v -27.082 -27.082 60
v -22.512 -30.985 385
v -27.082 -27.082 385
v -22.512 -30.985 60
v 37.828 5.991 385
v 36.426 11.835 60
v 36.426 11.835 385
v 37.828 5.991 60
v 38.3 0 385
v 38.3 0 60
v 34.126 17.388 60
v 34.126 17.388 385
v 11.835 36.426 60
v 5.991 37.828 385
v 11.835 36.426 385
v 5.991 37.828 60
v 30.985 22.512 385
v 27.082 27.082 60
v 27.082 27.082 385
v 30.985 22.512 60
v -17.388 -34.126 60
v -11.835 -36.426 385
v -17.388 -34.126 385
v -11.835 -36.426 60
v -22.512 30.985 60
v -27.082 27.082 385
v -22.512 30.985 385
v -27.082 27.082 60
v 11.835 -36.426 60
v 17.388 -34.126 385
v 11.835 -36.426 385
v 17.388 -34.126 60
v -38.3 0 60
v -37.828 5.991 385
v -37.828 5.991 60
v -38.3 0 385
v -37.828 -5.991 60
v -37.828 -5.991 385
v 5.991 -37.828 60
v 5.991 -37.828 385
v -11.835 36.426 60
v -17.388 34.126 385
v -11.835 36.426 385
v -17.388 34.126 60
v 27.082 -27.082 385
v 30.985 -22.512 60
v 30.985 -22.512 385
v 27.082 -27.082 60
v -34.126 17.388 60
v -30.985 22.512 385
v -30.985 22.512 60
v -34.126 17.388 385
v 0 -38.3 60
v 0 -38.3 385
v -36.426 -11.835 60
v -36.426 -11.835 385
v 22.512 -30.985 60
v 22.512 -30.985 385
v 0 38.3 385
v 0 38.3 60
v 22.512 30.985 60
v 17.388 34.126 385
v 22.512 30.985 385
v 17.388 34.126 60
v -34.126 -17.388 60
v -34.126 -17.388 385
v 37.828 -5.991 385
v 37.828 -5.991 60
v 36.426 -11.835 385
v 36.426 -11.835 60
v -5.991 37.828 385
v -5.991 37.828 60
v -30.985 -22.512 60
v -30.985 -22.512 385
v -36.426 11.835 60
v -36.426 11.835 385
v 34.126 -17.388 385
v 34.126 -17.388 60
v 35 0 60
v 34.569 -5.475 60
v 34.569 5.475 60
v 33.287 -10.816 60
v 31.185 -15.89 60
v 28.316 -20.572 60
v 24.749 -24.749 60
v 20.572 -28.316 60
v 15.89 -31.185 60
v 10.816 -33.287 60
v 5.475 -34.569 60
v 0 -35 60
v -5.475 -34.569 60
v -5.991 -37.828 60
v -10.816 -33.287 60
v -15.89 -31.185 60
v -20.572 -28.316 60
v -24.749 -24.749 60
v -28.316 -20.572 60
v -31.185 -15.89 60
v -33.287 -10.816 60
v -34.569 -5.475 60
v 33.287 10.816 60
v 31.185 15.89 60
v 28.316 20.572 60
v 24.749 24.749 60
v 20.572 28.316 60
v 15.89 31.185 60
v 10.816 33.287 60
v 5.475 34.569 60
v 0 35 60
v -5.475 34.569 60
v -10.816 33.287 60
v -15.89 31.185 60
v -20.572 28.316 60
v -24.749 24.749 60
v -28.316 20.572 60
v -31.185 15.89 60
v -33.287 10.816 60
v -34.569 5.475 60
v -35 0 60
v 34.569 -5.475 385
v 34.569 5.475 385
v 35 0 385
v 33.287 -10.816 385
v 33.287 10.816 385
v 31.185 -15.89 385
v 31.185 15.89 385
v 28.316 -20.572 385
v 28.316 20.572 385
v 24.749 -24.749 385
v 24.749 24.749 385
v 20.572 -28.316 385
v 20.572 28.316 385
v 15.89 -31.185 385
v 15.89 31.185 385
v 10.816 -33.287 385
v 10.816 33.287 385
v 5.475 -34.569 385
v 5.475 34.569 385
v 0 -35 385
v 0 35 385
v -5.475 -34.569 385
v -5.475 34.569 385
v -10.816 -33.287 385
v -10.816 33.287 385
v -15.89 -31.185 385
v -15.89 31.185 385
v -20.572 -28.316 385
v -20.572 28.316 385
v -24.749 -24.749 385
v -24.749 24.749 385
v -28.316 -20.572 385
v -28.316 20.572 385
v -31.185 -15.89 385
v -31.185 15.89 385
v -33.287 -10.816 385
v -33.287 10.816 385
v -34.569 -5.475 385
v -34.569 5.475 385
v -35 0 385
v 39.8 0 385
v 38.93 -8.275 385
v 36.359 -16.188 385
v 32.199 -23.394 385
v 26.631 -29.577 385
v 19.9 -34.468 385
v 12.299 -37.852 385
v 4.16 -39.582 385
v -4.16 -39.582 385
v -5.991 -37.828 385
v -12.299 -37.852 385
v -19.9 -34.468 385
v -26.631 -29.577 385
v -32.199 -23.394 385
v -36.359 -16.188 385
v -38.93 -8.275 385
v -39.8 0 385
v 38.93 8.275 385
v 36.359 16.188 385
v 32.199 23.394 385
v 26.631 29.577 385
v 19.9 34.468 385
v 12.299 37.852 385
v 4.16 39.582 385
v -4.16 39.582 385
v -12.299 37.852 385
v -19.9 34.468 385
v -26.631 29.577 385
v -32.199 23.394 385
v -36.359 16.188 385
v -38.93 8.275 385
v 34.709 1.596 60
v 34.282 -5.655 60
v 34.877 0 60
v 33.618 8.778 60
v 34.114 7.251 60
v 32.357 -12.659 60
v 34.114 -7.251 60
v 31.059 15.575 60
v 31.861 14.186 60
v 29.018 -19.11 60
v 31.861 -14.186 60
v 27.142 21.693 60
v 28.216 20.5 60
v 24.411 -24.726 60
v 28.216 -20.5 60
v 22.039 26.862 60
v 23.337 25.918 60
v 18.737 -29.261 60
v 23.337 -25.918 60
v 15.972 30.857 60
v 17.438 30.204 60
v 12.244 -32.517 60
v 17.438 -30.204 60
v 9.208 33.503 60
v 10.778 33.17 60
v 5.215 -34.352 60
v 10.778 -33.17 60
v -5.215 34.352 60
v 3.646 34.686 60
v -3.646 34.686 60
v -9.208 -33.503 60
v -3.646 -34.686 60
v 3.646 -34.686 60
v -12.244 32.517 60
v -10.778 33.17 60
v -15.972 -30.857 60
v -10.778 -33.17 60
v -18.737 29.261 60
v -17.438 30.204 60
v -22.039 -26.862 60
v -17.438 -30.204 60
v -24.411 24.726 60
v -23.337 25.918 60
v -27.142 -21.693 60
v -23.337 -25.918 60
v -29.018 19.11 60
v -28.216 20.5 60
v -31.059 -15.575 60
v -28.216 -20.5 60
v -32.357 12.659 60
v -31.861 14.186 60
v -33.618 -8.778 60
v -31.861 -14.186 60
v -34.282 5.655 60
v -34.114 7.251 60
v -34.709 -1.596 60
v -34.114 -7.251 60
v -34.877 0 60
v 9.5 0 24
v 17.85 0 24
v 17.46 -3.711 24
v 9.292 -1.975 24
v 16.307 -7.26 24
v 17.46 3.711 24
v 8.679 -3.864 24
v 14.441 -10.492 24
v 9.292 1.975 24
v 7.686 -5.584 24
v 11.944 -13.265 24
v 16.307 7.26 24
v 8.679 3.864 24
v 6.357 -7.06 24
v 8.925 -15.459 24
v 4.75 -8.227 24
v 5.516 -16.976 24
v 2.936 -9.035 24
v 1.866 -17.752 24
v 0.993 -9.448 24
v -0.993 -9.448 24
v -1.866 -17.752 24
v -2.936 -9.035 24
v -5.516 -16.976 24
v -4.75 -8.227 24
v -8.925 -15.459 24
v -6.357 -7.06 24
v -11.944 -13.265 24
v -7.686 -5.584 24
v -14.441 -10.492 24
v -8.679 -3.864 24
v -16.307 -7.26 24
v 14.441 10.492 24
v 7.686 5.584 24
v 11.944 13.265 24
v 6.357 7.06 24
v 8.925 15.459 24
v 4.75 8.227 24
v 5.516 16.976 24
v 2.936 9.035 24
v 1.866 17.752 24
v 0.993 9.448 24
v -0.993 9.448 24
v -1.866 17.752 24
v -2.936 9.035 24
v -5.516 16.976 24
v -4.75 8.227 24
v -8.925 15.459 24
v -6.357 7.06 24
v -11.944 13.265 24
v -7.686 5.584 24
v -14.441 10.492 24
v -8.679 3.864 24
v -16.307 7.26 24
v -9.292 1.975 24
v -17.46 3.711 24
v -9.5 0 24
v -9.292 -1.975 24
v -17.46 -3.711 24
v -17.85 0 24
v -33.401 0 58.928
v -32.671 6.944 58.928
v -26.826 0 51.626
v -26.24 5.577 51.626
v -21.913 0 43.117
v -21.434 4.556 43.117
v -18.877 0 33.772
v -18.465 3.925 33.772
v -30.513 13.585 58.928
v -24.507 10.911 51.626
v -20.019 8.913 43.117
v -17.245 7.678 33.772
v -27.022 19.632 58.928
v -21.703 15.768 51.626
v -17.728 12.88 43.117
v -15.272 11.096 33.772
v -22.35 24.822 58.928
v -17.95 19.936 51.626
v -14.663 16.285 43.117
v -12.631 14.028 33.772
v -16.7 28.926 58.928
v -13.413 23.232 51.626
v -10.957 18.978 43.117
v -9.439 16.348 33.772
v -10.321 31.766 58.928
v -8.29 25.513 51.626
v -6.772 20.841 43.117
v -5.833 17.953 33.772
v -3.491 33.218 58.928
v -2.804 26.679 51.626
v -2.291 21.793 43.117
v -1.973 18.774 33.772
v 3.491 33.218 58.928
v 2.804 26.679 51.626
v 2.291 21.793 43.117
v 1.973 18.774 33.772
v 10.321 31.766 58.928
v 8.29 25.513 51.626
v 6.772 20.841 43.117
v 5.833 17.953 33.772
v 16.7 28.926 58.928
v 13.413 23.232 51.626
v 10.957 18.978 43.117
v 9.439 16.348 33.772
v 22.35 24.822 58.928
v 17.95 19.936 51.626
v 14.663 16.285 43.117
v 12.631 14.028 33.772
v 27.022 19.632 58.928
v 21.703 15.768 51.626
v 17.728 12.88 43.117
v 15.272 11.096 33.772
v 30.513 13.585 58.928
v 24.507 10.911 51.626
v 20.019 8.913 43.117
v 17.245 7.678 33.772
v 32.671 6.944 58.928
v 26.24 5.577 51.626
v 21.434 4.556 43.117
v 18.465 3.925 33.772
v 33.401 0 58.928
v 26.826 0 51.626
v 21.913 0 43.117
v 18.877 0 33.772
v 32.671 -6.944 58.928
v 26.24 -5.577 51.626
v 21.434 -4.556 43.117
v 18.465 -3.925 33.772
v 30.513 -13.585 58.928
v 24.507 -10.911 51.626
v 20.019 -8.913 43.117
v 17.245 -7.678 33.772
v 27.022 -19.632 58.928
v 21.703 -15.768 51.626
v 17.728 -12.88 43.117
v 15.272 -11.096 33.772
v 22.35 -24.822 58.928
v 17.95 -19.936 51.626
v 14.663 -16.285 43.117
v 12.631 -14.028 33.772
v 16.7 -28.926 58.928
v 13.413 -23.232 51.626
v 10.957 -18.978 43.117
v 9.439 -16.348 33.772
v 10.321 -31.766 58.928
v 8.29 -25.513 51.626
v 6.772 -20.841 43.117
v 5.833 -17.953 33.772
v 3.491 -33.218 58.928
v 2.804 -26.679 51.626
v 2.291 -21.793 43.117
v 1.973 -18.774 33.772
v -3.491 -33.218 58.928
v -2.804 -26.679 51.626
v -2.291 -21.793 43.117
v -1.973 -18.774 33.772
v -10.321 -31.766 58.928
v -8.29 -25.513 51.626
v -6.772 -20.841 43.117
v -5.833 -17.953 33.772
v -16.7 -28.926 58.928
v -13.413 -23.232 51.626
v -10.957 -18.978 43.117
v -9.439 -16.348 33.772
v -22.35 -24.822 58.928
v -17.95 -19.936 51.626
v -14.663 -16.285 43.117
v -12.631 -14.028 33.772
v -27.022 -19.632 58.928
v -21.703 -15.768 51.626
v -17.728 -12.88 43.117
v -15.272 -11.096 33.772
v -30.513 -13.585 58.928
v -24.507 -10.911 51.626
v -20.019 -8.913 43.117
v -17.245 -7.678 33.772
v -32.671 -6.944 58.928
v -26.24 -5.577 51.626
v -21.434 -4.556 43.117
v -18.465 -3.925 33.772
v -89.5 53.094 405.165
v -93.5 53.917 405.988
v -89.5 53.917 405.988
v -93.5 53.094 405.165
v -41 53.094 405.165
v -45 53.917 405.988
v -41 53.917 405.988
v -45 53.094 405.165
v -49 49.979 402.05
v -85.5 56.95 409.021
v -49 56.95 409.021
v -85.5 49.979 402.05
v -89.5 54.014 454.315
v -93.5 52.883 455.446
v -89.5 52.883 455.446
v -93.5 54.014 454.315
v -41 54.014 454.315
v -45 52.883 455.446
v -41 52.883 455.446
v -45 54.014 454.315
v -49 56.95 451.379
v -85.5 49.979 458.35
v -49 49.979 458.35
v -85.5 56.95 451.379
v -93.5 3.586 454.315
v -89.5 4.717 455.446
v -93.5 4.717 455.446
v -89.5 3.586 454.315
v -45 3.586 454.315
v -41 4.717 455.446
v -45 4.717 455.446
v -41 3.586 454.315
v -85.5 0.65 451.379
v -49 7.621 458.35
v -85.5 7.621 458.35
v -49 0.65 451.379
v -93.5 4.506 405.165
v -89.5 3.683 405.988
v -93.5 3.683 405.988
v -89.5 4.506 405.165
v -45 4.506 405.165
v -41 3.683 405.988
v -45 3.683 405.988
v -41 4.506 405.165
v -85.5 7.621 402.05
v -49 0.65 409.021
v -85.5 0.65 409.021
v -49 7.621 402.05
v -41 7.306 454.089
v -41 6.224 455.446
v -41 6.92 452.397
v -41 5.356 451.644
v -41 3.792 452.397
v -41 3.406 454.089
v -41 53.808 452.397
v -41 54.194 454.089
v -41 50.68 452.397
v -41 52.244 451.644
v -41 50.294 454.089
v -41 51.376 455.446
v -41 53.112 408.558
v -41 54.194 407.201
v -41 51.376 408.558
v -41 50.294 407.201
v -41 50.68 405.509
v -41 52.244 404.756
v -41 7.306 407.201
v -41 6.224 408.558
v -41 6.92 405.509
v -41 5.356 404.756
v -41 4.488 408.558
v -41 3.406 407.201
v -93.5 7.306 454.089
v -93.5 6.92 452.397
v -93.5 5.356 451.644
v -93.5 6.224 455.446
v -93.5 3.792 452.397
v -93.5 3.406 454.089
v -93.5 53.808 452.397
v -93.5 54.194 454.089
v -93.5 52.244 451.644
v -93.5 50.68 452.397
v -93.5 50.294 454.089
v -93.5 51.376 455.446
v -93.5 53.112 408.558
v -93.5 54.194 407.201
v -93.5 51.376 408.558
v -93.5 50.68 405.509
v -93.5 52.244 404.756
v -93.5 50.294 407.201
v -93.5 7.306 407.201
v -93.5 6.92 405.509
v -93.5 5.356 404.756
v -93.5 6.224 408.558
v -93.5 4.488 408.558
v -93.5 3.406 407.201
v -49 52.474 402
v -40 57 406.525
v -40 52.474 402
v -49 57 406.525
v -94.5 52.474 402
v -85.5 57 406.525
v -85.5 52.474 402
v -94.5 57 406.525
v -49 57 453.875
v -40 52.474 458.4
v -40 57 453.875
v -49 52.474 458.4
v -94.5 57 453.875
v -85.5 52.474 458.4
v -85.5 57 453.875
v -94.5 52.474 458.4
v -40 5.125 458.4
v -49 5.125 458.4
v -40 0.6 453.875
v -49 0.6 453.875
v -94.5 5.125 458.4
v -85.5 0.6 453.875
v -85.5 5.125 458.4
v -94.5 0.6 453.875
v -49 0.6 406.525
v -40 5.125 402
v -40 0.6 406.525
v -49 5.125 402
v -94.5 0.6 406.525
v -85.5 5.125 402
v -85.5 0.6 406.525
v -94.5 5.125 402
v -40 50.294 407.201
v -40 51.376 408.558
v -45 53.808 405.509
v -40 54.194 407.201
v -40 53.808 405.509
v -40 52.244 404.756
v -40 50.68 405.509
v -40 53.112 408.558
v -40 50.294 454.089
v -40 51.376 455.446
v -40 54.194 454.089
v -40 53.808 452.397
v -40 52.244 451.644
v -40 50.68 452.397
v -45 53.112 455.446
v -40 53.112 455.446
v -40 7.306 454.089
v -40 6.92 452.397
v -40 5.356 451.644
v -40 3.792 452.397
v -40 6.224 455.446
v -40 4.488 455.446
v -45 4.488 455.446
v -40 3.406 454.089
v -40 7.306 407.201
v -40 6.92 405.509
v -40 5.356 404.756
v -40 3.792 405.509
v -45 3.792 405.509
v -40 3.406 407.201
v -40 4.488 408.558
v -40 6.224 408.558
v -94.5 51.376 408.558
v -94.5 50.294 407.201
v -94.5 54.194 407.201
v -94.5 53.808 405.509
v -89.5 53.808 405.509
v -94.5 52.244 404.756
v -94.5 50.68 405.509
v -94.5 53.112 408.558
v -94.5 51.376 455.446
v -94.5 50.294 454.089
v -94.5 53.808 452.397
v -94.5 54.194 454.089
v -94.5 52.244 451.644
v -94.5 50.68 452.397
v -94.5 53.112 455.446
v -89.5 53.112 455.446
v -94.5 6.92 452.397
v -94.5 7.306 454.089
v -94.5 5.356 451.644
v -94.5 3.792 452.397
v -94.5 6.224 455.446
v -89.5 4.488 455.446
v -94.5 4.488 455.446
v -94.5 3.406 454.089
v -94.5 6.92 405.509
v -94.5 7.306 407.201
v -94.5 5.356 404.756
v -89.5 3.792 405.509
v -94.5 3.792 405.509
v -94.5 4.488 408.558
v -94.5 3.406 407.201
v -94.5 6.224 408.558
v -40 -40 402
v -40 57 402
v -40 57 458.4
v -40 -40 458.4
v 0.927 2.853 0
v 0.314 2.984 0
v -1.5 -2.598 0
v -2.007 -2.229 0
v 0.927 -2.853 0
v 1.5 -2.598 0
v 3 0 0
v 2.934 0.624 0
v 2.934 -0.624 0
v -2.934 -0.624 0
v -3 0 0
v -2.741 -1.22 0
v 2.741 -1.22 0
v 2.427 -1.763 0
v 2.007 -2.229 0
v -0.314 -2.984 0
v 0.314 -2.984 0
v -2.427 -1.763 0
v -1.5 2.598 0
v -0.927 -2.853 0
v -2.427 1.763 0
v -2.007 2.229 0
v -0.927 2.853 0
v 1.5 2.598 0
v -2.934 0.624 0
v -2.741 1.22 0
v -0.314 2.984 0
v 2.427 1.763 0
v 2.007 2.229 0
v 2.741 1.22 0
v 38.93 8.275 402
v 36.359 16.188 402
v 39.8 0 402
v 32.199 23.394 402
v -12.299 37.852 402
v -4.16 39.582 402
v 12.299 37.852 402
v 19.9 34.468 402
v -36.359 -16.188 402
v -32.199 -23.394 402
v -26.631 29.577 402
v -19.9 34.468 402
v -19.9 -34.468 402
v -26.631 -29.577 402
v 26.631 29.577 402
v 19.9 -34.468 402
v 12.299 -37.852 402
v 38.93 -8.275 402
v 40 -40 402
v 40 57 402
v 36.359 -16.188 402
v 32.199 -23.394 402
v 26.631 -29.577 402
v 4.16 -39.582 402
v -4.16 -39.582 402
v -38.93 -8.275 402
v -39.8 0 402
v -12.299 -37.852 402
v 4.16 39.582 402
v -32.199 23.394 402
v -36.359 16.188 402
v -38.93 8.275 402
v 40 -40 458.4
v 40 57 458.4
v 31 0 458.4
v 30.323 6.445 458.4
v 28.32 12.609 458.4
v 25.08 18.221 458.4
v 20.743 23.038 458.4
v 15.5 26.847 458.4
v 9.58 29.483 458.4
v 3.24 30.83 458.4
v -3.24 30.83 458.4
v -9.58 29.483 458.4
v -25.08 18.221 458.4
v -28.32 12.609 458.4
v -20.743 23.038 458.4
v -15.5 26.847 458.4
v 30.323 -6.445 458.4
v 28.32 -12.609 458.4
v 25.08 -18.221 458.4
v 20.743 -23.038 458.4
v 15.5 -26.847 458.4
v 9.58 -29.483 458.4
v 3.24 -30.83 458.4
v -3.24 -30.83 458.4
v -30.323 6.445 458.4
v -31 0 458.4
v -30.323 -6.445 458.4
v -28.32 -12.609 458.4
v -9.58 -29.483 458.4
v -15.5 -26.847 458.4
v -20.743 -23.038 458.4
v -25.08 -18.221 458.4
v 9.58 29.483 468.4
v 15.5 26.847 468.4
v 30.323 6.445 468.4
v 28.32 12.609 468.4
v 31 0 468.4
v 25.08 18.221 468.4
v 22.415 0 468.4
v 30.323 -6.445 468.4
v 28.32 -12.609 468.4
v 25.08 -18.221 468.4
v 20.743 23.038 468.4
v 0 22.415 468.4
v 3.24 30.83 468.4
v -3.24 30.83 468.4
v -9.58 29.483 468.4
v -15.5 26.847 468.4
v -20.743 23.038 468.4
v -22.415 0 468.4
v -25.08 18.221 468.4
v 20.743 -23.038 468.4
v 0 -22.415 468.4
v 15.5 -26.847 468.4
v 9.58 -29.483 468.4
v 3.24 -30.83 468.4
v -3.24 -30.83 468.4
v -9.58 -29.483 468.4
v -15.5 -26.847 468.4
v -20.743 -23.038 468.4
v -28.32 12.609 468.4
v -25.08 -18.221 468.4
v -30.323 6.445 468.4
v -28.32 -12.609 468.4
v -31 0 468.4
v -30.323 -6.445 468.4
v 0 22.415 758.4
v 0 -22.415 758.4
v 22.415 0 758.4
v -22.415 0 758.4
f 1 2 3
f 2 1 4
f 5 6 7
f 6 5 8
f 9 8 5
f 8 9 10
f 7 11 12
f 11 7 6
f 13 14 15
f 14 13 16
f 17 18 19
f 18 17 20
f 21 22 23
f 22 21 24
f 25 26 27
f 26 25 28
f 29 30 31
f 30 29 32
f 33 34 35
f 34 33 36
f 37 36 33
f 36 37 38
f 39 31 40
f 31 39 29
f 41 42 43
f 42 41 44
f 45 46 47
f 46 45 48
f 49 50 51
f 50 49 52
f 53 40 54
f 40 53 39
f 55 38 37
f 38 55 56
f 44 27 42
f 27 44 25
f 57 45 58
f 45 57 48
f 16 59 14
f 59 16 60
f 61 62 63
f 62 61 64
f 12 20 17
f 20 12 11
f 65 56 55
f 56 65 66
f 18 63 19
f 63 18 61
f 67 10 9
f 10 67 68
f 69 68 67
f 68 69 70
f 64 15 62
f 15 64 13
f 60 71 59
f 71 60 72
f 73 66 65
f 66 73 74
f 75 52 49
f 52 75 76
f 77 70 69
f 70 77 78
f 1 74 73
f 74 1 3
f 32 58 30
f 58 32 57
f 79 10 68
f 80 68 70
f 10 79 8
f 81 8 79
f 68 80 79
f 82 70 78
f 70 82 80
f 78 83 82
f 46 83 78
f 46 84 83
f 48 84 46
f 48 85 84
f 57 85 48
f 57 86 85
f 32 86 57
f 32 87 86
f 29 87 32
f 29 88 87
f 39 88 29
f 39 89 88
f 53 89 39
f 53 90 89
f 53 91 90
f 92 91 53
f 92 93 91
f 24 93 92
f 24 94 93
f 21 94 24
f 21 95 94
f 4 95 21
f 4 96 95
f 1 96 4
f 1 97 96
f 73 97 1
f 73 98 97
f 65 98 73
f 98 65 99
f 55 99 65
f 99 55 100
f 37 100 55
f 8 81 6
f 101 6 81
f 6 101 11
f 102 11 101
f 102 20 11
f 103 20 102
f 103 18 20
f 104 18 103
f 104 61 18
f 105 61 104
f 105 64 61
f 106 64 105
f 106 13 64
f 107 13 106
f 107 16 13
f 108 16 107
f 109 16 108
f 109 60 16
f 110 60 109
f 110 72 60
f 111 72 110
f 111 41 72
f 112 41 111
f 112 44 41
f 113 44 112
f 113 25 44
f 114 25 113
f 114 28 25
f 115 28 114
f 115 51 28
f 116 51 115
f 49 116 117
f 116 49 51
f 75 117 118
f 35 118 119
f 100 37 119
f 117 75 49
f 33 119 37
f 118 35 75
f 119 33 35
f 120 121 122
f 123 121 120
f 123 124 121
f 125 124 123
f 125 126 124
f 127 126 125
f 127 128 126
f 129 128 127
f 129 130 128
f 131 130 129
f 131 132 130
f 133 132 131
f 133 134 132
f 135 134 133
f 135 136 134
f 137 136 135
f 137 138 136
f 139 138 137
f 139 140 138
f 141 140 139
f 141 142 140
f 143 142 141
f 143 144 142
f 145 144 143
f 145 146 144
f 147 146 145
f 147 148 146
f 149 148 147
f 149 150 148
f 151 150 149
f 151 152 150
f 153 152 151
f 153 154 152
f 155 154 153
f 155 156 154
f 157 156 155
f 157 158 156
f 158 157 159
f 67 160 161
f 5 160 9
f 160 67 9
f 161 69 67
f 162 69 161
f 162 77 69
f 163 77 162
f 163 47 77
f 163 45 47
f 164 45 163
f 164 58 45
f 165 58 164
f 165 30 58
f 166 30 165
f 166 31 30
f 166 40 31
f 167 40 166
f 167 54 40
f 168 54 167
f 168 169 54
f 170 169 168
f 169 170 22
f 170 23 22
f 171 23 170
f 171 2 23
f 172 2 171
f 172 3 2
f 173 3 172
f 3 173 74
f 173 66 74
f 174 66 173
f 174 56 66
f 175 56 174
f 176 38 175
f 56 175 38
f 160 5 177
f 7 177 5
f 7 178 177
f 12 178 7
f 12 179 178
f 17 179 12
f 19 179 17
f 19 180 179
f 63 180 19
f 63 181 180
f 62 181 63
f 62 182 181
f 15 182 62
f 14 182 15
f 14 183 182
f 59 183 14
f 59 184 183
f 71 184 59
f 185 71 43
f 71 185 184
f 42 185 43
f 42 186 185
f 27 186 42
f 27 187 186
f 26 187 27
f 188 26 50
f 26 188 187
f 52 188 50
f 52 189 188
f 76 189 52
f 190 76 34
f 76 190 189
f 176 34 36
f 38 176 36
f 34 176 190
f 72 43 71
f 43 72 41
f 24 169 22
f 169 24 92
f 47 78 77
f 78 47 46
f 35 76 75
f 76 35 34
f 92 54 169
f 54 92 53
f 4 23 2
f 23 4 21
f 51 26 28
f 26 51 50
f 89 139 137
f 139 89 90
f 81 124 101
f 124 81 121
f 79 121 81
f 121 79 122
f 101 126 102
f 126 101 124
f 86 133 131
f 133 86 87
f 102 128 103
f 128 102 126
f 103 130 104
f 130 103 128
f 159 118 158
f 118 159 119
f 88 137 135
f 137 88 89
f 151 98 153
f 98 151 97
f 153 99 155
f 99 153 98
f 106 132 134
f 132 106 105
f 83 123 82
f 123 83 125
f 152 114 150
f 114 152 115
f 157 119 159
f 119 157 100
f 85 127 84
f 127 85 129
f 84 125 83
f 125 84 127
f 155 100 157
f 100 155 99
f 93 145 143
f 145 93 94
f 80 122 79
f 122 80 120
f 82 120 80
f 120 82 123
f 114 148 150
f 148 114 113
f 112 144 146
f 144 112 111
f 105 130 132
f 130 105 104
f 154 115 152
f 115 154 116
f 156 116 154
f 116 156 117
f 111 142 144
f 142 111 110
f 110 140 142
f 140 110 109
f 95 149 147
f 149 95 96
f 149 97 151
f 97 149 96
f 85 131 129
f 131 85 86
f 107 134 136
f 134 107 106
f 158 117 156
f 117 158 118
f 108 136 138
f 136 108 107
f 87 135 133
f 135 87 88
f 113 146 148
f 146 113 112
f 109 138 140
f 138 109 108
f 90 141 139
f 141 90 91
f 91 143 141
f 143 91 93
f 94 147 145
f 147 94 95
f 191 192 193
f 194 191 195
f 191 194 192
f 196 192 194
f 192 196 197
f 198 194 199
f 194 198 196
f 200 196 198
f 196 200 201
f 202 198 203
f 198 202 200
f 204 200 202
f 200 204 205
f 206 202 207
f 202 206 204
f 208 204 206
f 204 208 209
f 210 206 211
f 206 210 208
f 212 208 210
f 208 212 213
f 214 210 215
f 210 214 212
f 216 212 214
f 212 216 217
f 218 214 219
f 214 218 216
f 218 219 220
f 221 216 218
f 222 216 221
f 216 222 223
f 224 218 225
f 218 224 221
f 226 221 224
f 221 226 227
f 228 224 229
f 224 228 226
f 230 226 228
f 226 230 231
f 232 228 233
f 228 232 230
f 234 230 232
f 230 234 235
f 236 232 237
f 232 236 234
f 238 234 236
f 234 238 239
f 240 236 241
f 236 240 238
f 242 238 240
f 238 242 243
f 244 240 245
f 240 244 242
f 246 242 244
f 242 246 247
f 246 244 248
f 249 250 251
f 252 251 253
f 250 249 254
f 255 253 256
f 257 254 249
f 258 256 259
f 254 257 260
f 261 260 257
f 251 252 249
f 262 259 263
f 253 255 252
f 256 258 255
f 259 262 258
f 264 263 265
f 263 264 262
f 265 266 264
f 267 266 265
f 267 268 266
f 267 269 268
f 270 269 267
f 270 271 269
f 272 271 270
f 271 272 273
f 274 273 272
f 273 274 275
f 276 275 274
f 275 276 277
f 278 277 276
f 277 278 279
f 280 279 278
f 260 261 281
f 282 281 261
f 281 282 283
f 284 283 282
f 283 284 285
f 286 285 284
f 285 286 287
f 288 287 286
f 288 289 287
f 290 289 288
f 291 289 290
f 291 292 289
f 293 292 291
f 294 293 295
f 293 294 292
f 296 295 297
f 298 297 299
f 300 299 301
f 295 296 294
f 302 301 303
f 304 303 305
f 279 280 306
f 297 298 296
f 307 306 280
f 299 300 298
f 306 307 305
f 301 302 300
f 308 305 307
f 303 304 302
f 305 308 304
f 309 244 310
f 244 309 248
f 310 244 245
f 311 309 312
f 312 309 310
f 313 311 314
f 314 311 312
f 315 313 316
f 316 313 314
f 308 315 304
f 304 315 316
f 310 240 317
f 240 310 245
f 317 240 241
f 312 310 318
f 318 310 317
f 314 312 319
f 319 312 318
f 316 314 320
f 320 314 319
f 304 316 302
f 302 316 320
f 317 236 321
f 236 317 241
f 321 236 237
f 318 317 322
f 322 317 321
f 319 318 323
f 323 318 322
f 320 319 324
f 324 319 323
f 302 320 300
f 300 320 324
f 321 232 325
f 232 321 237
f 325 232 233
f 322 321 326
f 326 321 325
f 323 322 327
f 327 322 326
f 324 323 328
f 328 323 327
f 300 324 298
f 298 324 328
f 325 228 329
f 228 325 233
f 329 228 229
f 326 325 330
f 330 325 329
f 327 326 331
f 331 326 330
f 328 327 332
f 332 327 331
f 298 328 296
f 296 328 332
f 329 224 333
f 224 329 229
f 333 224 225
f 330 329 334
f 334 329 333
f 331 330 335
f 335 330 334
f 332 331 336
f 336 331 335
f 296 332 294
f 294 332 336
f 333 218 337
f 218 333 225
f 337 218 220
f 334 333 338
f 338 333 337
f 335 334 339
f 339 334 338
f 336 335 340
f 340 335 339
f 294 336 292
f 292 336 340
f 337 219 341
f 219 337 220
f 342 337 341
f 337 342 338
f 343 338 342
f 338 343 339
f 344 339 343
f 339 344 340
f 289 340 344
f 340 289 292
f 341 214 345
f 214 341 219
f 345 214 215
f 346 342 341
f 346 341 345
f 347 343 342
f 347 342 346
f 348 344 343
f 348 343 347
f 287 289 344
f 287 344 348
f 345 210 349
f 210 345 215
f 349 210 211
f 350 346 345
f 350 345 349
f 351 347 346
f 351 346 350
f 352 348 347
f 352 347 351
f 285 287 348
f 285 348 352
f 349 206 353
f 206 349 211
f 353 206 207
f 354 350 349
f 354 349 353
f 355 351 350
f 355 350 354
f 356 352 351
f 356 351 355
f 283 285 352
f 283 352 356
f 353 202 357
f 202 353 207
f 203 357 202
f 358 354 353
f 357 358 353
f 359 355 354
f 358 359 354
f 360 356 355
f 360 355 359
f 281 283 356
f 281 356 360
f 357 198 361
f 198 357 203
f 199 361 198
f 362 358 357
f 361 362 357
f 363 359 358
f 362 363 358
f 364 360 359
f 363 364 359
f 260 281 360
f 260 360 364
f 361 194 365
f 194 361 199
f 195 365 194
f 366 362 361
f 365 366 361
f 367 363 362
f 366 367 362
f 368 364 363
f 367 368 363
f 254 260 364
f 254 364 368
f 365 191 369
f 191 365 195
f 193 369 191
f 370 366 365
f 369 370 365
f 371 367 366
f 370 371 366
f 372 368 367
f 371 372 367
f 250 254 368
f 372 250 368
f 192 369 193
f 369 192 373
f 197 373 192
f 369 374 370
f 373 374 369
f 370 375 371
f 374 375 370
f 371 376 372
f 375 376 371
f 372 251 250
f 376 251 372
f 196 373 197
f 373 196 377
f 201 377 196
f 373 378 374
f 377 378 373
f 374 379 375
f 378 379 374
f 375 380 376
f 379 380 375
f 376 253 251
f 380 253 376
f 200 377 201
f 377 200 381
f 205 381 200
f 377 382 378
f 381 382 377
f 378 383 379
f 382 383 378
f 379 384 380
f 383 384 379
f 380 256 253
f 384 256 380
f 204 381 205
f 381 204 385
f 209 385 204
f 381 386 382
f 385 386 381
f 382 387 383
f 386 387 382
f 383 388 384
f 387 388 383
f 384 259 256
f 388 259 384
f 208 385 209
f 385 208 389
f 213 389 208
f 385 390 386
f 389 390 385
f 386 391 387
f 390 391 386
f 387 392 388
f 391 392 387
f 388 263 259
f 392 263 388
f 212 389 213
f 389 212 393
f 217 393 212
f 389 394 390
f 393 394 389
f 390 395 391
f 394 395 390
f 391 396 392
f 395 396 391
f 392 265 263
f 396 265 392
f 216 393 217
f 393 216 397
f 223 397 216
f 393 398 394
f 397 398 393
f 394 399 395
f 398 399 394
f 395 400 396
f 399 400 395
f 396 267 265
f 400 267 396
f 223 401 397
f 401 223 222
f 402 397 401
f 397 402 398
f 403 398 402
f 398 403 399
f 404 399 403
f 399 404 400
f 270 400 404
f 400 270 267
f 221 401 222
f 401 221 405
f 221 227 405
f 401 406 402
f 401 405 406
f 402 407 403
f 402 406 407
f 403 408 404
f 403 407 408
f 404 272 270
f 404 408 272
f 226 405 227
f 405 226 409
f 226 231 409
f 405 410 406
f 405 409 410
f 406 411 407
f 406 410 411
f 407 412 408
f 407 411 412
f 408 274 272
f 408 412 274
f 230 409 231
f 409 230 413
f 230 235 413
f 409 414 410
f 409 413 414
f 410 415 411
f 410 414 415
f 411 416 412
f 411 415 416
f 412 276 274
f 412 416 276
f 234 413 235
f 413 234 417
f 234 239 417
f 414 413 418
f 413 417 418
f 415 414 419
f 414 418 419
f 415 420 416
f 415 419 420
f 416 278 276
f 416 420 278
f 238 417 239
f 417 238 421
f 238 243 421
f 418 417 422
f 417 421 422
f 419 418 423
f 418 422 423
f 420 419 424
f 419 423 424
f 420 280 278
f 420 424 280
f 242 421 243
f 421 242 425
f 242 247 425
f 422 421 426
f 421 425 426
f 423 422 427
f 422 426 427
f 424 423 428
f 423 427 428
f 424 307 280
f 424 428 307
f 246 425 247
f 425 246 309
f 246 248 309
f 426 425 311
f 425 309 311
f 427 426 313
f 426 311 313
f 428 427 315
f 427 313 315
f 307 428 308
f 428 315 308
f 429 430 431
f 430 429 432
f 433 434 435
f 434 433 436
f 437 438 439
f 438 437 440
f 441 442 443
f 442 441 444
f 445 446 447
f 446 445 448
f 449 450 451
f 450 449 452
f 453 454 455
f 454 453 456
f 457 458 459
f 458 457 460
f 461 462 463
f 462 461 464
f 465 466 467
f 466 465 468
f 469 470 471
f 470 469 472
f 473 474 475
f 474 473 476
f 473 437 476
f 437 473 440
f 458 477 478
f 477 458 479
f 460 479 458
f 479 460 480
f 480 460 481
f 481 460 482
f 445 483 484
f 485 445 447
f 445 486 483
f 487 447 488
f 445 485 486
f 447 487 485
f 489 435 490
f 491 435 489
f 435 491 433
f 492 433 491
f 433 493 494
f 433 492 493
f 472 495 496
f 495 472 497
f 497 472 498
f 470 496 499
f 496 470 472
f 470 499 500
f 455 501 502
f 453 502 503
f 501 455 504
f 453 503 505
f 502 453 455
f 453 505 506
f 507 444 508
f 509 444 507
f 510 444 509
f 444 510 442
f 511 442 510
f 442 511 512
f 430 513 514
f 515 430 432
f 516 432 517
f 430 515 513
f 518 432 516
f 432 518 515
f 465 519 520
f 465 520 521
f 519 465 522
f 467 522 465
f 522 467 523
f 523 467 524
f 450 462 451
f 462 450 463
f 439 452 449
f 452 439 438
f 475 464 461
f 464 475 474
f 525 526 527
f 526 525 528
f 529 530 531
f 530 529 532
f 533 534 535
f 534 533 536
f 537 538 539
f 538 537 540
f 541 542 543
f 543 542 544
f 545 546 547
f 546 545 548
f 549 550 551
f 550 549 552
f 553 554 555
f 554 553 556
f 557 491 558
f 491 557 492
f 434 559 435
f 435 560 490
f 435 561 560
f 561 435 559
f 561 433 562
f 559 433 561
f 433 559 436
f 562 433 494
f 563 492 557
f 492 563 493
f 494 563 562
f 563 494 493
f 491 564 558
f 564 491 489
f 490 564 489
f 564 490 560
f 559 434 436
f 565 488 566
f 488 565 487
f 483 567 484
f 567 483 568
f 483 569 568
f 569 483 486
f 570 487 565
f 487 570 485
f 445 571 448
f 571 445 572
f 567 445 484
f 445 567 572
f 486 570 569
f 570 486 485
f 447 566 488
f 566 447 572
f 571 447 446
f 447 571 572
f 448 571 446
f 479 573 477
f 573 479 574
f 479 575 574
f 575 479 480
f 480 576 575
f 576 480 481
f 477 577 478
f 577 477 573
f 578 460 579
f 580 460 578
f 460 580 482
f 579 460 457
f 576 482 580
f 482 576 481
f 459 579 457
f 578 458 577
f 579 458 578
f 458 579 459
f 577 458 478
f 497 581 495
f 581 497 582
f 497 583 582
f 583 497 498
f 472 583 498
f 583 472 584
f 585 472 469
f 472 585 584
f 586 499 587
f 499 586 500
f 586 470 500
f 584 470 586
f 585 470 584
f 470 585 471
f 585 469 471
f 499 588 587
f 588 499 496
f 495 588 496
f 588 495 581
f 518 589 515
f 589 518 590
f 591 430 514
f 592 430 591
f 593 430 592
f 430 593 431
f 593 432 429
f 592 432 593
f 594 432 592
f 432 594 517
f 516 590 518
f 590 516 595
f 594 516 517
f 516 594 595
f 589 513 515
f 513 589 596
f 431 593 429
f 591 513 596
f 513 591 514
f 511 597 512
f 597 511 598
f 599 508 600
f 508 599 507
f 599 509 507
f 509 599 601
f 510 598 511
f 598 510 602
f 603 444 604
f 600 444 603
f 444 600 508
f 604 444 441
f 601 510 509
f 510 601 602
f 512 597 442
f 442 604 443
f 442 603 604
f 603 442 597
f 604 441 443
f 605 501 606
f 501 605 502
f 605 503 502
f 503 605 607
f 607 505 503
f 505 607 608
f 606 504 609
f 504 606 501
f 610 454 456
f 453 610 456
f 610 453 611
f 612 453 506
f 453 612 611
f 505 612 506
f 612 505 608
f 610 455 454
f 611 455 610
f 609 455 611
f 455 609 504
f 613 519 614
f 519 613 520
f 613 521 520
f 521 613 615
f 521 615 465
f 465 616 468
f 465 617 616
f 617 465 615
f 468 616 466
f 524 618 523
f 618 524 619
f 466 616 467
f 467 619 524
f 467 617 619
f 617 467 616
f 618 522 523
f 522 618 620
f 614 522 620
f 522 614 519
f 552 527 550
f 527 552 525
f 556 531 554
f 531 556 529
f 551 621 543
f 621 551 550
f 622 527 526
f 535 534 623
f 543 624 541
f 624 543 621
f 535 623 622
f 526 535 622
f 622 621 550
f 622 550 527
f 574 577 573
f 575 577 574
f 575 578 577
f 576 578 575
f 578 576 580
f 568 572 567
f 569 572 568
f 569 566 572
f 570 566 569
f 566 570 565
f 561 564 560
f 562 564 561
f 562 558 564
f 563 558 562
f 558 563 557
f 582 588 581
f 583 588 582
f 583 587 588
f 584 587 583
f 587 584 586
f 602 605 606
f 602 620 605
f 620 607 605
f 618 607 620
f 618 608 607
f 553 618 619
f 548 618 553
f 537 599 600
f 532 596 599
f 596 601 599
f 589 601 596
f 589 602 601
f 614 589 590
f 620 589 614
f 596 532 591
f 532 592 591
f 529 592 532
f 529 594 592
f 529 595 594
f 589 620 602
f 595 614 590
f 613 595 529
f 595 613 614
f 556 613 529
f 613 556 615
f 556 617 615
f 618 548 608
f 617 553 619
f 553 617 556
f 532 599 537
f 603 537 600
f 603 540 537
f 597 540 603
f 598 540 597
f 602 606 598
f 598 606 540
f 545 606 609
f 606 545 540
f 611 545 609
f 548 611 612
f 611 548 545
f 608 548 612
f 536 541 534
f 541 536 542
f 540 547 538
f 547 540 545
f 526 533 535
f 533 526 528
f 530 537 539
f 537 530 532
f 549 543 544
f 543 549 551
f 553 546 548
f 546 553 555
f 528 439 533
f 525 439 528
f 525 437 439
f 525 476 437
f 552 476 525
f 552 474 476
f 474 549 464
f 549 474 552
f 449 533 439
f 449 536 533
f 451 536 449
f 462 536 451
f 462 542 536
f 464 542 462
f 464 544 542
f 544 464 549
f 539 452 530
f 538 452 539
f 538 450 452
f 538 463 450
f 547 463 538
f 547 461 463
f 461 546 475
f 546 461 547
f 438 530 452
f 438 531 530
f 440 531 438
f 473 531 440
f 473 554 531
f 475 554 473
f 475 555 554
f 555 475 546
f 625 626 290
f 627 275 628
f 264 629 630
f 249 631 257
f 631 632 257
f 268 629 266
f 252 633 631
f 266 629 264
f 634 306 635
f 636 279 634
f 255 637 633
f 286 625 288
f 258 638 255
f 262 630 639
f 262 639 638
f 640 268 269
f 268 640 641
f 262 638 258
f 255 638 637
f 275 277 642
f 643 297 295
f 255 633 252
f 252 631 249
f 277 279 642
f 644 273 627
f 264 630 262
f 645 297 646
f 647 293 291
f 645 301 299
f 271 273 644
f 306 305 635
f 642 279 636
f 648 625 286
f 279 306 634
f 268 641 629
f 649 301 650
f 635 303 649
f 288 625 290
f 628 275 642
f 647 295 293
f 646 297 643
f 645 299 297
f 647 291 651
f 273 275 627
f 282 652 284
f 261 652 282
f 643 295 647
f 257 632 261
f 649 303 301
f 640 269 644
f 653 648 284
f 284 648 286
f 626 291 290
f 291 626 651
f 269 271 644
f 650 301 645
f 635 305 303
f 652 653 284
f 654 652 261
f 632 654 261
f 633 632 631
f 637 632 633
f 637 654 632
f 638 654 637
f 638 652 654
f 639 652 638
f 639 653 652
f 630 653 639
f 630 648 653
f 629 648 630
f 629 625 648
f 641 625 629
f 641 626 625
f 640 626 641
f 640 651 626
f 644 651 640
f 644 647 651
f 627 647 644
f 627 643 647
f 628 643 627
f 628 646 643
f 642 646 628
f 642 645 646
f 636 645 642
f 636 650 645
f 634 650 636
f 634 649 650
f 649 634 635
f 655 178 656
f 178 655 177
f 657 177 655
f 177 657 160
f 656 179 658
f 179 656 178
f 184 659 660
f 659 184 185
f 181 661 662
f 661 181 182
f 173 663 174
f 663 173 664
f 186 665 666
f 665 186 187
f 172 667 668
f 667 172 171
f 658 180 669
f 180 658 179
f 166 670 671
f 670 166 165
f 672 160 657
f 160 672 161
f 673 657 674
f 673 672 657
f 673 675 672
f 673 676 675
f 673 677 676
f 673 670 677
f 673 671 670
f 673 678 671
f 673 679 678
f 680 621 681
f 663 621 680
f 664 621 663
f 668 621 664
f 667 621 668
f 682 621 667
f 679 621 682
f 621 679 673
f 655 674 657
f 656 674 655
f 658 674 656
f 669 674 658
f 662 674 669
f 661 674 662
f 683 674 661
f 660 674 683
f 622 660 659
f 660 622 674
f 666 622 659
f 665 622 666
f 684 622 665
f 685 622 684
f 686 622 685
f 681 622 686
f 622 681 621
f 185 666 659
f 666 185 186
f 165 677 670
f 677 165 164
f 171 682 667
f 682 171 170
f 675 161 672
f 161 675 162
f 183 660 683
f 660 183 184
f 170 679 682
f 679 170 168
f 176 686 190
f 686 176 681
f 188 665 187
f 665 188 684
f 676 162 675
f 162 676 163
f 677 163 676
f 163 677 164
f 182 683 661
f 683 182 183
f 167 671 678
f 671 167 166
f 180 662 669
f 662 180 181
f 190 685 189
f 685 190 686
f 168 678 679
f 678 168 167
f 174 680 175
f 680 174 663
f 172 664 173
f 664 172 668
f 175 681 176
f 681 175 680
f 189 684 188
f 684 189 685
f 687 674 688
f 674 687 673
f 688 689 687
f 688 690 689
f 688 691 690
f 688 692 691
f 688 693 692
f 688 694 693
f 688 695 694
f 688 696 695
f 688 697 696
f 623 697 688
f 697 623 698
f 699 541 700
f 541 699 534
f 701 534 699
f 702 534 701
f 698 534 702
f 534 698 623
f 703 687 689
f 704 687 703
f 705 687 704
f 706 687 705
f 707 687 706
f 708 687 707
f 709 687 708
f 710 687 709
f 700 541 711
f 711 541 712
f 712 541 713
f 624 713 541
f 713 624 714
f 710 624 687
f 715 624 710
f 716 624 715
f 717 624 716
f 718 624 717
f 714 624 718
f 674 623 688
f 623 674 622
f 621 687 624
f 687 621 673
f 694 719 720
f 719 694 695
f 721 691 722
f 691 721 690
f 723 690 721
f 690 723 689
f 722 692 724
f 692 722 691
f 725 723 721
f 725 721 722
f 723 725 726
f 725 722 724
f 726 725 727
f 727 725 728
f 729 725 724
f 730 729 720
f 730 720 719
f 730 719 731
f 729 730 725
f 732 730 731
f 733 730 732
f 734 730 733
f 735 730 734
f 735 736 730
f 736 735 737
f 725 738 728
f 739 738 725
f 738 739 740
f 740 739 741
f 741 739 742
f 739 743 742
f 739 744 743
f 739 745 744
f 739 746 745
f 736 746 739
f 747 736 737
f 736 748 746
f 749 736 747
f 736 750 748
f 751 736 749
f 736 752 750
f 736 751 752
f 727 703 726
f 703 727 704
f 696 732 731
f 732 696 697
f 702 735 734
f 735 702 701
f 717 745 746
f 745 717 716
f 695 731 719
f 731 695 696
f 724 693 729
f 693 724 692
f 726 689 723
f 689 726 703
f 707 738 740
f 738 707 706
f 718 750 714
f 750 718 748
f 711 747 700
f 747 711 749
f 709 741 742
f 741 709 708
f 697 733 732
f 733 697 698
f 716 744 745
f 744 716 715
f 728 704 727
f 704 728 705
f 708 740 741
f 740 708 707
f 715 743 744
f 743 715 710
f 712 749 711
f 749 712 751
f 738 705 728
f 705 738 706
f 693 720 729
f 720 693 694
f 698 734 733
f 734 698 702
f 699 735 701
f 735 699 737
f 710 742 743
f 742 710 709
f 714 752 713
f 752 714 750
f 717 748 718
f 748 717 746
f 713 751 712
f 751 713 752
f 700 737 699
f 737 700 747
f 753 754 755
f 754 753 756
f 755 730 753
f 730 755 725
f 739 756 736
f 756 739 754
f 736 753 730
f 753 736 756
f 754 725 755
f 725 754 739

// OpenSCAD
// file: lib/sweep.scad
// sweep.scad
//
// This code is copied from
// https://github.com/openscad/list-comprehension-demos
// and
// https://github.com/openscad/scad-utils
// to make hangprinter repo self-contained
// It was included in order to make the worm drive parametric
// In future OpenSCAD (or other script CAD programs)
// worm drives should be will be more easily constructed without
// this user space defined sweep operation.
// See OpenSCAD discussion at:
// https://github.com/openscad/openscad/issues/114

// Look into files
// lists.scad
// X transformations.scad
// linalg.scad
// se3.scad
// so3.scad


// Include modules and fcts:

/// linalg.scad
function vec3(p) = len(p) < 3 ? concat(p,0) : p;
function vec4(p) = let (v3=vec3(p)) len(v3) < 4 ? concat(v3,1) : v3;
function take3(v) = [v[0],v[1],v[2]];
function tail3(v) = [v[3],v[4],v[5]];
function construct_Rt(R,t) = [concat(R[0],t[0]),concat(R[1],t[1]),concat(R[2],t[2]),[0,0,0,1]];

/// so3.scad

function se3_exp_2(t,w) = se3_exp_2_0(t,w,w*w);
function se3_exp_2_0(t,w,theta_sq) =
se3_exp_23(
	so3_exp_2(theta_sq),
	C = (1.0 - theta_sq/20) / 6,
	t=t,w=w);

// Taylor series expansions close to 0
function so3_exp_1(theta_sq) = [
	1 - 1/6*theta_sq,
	0.5
];

function rodrigues_so3_exp(w, A, B) = [
  [1.0 - B*(w[1]*w[1] + w[2]*w[2]), B*(w[0]*w[1]) - A*w[2],          B*(w[0]*w[2]) + A*w[1]],
  [B*(w[0]*w[1]) + A*w[2],          1.0 - B*(w[0]*w[0] + w[2]*w[2]), B*(w[1]*w[2]) - A*w[0]],
  [B*(w[0]*w[2]) - A*w[1],          B*(w[1]*w[2]) + A*w[0],          1.0 - B*(w[0]*w[0] + w[1]*w[1])]
];

function so3_exp_3_0(theta_deg, inv_theta) = [
	sin(theta_deg) * inv_theta,
	(1 - cos(theta_deg)) * (inv_theta * inv_theta)
];

/// se3.scad
function combine_se3_exp(w, ABt) = construct_Rt(rodrigues_so3_exp(w, ABt[0], ABt[1]), ABt[2]);
function se3_exp_1(t,w) = concat(
	so3_exp_1(w*w),
	[t + 0.5 * cross(w,t)]
);

function se3_exp_3(t,w) = se3_exp_3_0(t,w,sqrt(w*w)*180/PI,1/sqrt(w*w));

function se3_exp_23(AB,C,t,w) =
[AB[0], AB[1], t + AB[1] * cross(w,t) + C * cross(w,cross(w,t)) ];

function se3_exp_3_0(t,w,theta_deg,inv_theta) =
se3_exp_23(
	so3_exp_3_0(theta_deg = theta_deg, inv_theta = inv_theta),
	C = (1 - sin(theta_deg) * inv_theta) * (inv_theta * inv_theta),
t=t,w=w);

function se3_exp(mu) = se3_exp_0(t=take3(mu),w=tail3(mu)/180*PI);

function se3_exp_0(t,w) =
combine_se3_exp(w,
// Evaluate by Taylor expansion when near 0
	w*w < 1e-8
	? se3_exp_1(t,w)
	: w*w < 1e-6
	  ? se3_exp_2(t,w)
	  : se3_exp_3(t,w)
);


/// lists.scad
/*!
  Flattens a list one level:

  flatten([[0,1],[2,3]]) => [0,1,2,3]
*/
function flatten(list) = [ for (i = list, v = i) v ];
/*!
  Extracts a subarray from index begin (inclusive) to end (exclusive)

  subarray([1,2,3,4], 1, 2) => [2,3]
*/
function subarray(list,begin=0,end=-1) = [
    let(end = end < 0 ? len(list) : end)
      for (i = [begin : 1 : end-1])
        list[i]
];

/// transformations.scad
//********* Create modifying matrices ***************//
/*!
  Creates a rotation matrix

  xyz = euler angles = rz * ry * rx
  axis = rotation_axis * rotation_angle
*/
function rotation(xyz=undef, axis=undef) =
	xyz != undef && axis != undef ? undef :
	xyz == undef  ? se3_exp([0,0,0,axis[0],axis[1],axis[2]]) :
	len(xyz) == undef ? rotation(axis=[0,0,xyz]) :
	(len(xyz) >= 3 ? rotation(axis=[0,0,xyz[2]]) : identity4()) *
	(len(xyz) >= 2 ? rotation(axis=[0,xyz[1],0]) : identity4()) *
(len(xyz) >= 1 ? rotation(axis=[xyz[0],0,0]) : identity4());

/*!
  Creates a scaling matrix
*/
function scaling(v) = [
	[v[0],0,0,0],
	[0,v[1],0,0],
	[0,0,v[2],0],
	[0,0,0,1],
];

/*!
  Creates a translation matrix
*/
function translation(v) = [
	[1,0,0,v[0]],
	[0,1,0,v[1]],
	[0,0,1,v[2]],
	[0,0,0,1],
];


function project(x) = subarray(x,end=len(x)-1) / x[len(x)-1];

function transform(m, list) = [for (p=list) project(m * vec4(p))];

function to_3d(list) = [ for(v = list) vec3(v) ];

module sweep(shape, path_transforms, closed=false) {

    pathlen = len(path_transforms);
    segments = pathlen + (closed ? 0 : -1);
    shape3d = to_3d(shape);

    function sweep_points() =
      flatten([for (i=[0:pathlen-1])
        transform(path_transforms[i], shape3d)]);

    function loop_faces() = [let (facets=len(shape3d))
        for(s=[0:segments-1], i=[0:facets-1])
          [(s%pathlen) * facets + i,
           (s%pathlen) * facets + (i + 1) % facets,
           ((s + 1) % pathlen) * facets + (i + 1) % facets,
           ((s + 1) % pathlen) * facets + i]];

    bottom_cap = closed ? [] : [[for (i=[len(shape3d)-1:-1:0]) i]];
    top_cap = closed ? [] : [
      [for (i=[0:len(shape3d)-1])
        i+len(shape3d)*(pathlen-1)]];
    polyhedron(points = sweep_points(),
               faces  = concat(loop_faces(),
                               bottom_cap,
                               top_cap),
               convexity=5);
}
// file: lib/parameters.scad
// Parameters shared between modules
Base_th = 2;
Beam_width = 15;
Wiggle = 0.25;
Fat_beam_width = Beam_width + Wiggle;
Beam_length = 400;
Wall_th = 2.5;
Min_beam_width = 12.5;
Max_beam_width = 17.5;
Zip_th = 2;
Zip_h = Zip_th + Max_beam_width - Min_beam_width;
Zip_w = 5.0;
Nema17_cube_width          = 42.43;
Nema17_screw_hole_width    = 43.74; // Opposite corner screws
Nema17_ring_diameter       = 22;
Nema17_cube_height         = 39.36;
Nema17_shaft_height        = 63.65;
Nema17_ring_height         = 2;
Nema17_shaft_radius        = 5/2;

Nema23_cube_width          = 56.4;
Nema23_cube_height         = 54.5;
Nema23_shaft_height        = 100;
Nema23_screw_hole_width    = 66.31; // Opposite corner screws
b608_outer_dia = 22.2;
b608_width = 7.05;
b608_bore_r = 4;
b608_vgroove_big_r = b608_outer_dia/2 + 2.5;
b608_vgroove_small_r = b608_outer_dia/2 + 0.5;
b608_ugroove_big_r = b608_vgroove_big_r;
b608_ugroove_small_r = b608_vgroove_small_r;
Gap_between_sandwich_and_plate = 1.5 + Base_th; // 1.5 mm for wiggle
Motor_bracket_flerp_r = 6;
Motor_bracket_flerp = 14;
Motor_bracket_cw = Nema17_cube_width + 6;
Motor_bracket_att_ang = 50;
Mounting_screw_d = 3.5;
Mounting_screw_head_d = 14;
Spool_outer_wall_th = 4;

// Corner clamp parameters
Cc_l1 = (Fat_beam_width+2*Wall_th)*2*sqrt(3);
Cc_rad_b = 4;
Cc_action_point_from_mid = Cc_l1/sqrt(3)-2*Cc_rad_b-7;
Cc_plastic_length = sqrt(Cc_action_point_from_mid*Cc_action_point_from_mid
                       - (Cc_action_point_from_mid/2)*(Cc_action_point_from_mid/2));
Eyelet_extra_dist = 0.75;
Eyelet_diameter = 4.30;
Move_d_bearings_inwards = -2;

// The distance between the two action points on the mover
Sidelength = Beam_length + 2*Cc_plastic_length;

/////// Gear parameters ////////////
Circular_pitch = 262;
Motor_teeth = 10;
Gear_height = 21.4-3;
Motor_pitch                      = (Motor_teeth*Circular_pitch/360);
Motor_pitch_diametrial           = Motor_teeth/(2*Motor_pitch);
Motor_outer_radius               = Motor_pitch + 1/Motor_pitch_diametrial;
Spool_teeth = 100;
Spool_r = 75;
Spool_height = 8;
Spool_pitch                      = (Spool_teeth*Circular_pitch/360);
Spool_pitch_diametrial           = Spool_teeth/(2*Spool_pitch);
Spool_outer_radius               = Spool_pitch + 1/Spool_pitch_diametrial;
Sep_disc_radius = (161.83+1)/2; // Made to match 255 teeth gt2 pulley + 1
Motor_bracket_depth = Gear_height+1+7+Nema17_ring_height+1+Gap_between_sandwich_and_plate;
Spool_core_flerp0 = 16+3;

/////// Lineroller parameters ////////////
b623_width  = 4;
b623_bore_r = 3/2;
b623_big_ugroove_big_r = (12+3)/2;
b623_big_ugroove_small_r = (10+3)/2;
b623_outer_dia = 10;
b623_ugroove_room_to_grow_r = 1.1;
b608_ugroove_room_to_grow_r = 1.1;
b623_flange_dia = 11.5;
b623_flange_room_to_grow_r = 0.5;

Depth_of_roller_base = 18;
Roller_flerp = 6;
Roller_l = 42;
Roller_fl = (Roller_l - Depth_of_roller_base)/2;

Line_roller_wall_th = 5;

Line_roller_ABC_winch_h =  Gap_between_sandwich_and_plate
                           + Sep_disc_radius
                           - Spool_r
                           + Depth_of_roller_base/2
                           + b608_vgroove_small_r;

Ptfe_r = 2.1;
Roller_base_r = 8;
Screw_h = 2;
Screw_head_h = 2;
M3_screw_head_d = 5.8;
Spool_center_bearing_wall_th = 5;
Corner_clamp_bearings_center_to_center = max(15, (b623_big_ugroove_big_r + b623_ugroove_room_to_grow_r)*2 + 5);

//// Lineroller anchor parameters /////

Front_bearing_x = -5 - 5;
Move_tower = -12.2;
Lower_bearing_z = 13;
Higher_bearing_z = Lower_bearing_z + Corner_clamp_bearings_center_to_center;

//// Cable Clamp parameters /////
Bit_width = 12;
Cable_r=2.5;

// Belt drive parameters
GT2_belt_width = 6.5;
GT2_gear_height = GT2_belt_width + 2;
GT2_motor_gear_height = 16;
GT2_motor_gear_outer_dia = 16;
GT2_spool_gear_outer_dia = 161.82; // Echoed from GT2_spool_gear.scad
GT2_spool_gear_teeth = 255;
GT2_motor_gear_teeth = 20;
Torx_depth = GT2_gear_height/2;
Belt_roller_h = 56;
Belt_thickness = 1.4;

Belt_roller_space_between_walls = 2*b623_width + 0.8;
Belt_roller_wall_th = (Depth_of_roller_base - Belt_roller_space_between_walls)/2+2;
Belt_roller_top_adj_screw_x = Depth_of_roller_base/2-3.7;
Belt_roller_top_adj_screw_y = Belt_roller_space_between_walls/2+2;
Belt_roller_containing_cube_ywidth = Belt_roller_space_between_walls+8.5;
Belt_roller_containing_cube_xwidth = 14;
Belt_roller_insert_h = 18;

Sandwich_ABC_width = 2*(1+Spool_height) + GT2_gear_height;
Sandwich_D_width = 4*(1+Spool_height) + GT2_gear_height;
Spool_core_halve_width = 14.3;
Spool_core_impression_in_spool_cover = 0;
Spool_cover_bottom_th = 1.5;
Spool_cover_shoulder = 2;
Spool_core_cover_adj = Spool_cover_shoulder+Spool_cover_bottom_th-Spool_core_impression_in_spool_cover;
Spool_core_tot_length = 136.458;
Spool_cover_outer_r = Sep_disc_radius + 2;
Gap_between_sep_disc_and_spool_cover = 0.55;

Smooth_rod_length_ABC = Sandwich_ABC_width + 2*(Spool_core_halve_width-Spool_core_impression_in_spool_cover + Spool_cover_bottom_th + Spool_cover_shoulder);
Smooth_rod_length_D = Sandwich_D_width + 2*(Spool_core_halve_width-Spool_core_impression_in_spool_cover + Spool_cover_bottom_th + Spool_cover_shoulder);
echo("Smooth_rod_length_ABC", Smooth_rod_length_ABC);
echo("Smooth_rod_length_D", Smooth_rod_length_D);

Spool_cover_tot_height = Spool_cover_bottom_th+Spool_cover_shoulder+1+Spool_height;
Spool_cover_D_left_tot_height = Spool_cover_shoulder+Spool_cover_bottom_th+1+Spool_height+1+Spool_height;

spd = Spool_height+GT2_gear_height;
// Horizontal_deflector_cube_y_size must be exact this number
// because we want to deflect AB-lines
// 60 degrees on the ceiling unit, and we want to put two
// deflectors in a row and get a distance between bearings
// that maintain the distance d when deflecting 60 degrees
Horizontal_deflector_cube_y_size = (2/sqrt(3))*spd;

Belt_roller_bearing_xpos = Sep_disc_radius + b623_outer_dia/2+Belt_thickness;


// Top plate parameters needed for layout slicer
Yshift_top_plate = -297.8;

Pen_holder_w = 55;
Pen_holder_rail_w = 36;
Pen_holder_bottom_th = 7;

u_width = 7;
Stick_extra = 5;
Stick_length = b623_big_ugroove_big_r*2 + 7*2 + 1*2 + Stick_extra;
Stick_d = 12.5;

Ram_1000_3dpotter_tube_inner_d = 70;
Ram_1000_3dpotter_tube_outer_d = Ram_1000_3dpotter_tube_inner_d + 2*3.3;
Ram_1000_3dpotter_top_square_width = 31.7;
// main file
include <lib/parameters.scad>
use <lib/util.scad>

ram_1000_3dpotter();
module ram_1000_3dpotter(){
  lift_tube = 60;
  tube_height = 325;
  tube_inner_d = Ram_1000_3dpotter_tube_inner_d;
  tube_outer_d = Ram_1000_3dpotter_tube_outer_d;
  translate([0,0,lift_tube])
    color([0.9,0.9,0.9], 0.4)
      difference(){
        cylinder(d = tube_outer_d, h=tube_height, $fn=10*4);
        translate([0,0,-1])
          cylinder(d = tube_inner_d, h= tube_height+2, $fn=10*4);
      }

  color([0.15,0.15,0.15])
    difference(){
      translate([0,0,lift_tube-36])
        cylinder(d=70, h=36);
      end_r = 35.7/2;
      circle_r = 47;
      translate([0,0,lift_tube-36])
        rotate_extrude()
          translate([circle_r+end_r,0])
            circle(r=circle_r);
    }

  color([0.93,0.1,0.1])
    cylinder(d1 = 6, d2 = 19, h = 24);

  shim_height = 17;
  color([0.15,0.15,0.15])
    translate([0,0,tube_height + lift_tube])
      cylinder(d = tube_outer_d + 3, h = shim_height);

  color([0.5,0.5,0.5])
    translate([-80/2, -80/2, lift_tube + tube_height + shim_height])
      cube([80, 97, Nema23_cube_width]);
  translate([-Nema23_cube_height-80/2, 97-80/2-Nema23_cube_width/2, lift_tube + tube_height + shim_height + Nema23_cube_width/2])
    rotate([0,90,0])
      Nema23();

  topshim_height = 10;
  color([0.6,0.6,0.6])
    translate([0,0,lift_tube + tube_height + shim_height + Nema23_cube_width])
      cylinder(d=62, h=topshim_height);
  w = Ram_1000_3dpotter_top_square_width;
  color([0.6,0.6,0.6])
    rotate([0,0,45])
      translate([-w/2, -w/2, lift_tube + tube_height + shim_height + Nema23_cube_width])
        cube([w, w, 300]);

}
